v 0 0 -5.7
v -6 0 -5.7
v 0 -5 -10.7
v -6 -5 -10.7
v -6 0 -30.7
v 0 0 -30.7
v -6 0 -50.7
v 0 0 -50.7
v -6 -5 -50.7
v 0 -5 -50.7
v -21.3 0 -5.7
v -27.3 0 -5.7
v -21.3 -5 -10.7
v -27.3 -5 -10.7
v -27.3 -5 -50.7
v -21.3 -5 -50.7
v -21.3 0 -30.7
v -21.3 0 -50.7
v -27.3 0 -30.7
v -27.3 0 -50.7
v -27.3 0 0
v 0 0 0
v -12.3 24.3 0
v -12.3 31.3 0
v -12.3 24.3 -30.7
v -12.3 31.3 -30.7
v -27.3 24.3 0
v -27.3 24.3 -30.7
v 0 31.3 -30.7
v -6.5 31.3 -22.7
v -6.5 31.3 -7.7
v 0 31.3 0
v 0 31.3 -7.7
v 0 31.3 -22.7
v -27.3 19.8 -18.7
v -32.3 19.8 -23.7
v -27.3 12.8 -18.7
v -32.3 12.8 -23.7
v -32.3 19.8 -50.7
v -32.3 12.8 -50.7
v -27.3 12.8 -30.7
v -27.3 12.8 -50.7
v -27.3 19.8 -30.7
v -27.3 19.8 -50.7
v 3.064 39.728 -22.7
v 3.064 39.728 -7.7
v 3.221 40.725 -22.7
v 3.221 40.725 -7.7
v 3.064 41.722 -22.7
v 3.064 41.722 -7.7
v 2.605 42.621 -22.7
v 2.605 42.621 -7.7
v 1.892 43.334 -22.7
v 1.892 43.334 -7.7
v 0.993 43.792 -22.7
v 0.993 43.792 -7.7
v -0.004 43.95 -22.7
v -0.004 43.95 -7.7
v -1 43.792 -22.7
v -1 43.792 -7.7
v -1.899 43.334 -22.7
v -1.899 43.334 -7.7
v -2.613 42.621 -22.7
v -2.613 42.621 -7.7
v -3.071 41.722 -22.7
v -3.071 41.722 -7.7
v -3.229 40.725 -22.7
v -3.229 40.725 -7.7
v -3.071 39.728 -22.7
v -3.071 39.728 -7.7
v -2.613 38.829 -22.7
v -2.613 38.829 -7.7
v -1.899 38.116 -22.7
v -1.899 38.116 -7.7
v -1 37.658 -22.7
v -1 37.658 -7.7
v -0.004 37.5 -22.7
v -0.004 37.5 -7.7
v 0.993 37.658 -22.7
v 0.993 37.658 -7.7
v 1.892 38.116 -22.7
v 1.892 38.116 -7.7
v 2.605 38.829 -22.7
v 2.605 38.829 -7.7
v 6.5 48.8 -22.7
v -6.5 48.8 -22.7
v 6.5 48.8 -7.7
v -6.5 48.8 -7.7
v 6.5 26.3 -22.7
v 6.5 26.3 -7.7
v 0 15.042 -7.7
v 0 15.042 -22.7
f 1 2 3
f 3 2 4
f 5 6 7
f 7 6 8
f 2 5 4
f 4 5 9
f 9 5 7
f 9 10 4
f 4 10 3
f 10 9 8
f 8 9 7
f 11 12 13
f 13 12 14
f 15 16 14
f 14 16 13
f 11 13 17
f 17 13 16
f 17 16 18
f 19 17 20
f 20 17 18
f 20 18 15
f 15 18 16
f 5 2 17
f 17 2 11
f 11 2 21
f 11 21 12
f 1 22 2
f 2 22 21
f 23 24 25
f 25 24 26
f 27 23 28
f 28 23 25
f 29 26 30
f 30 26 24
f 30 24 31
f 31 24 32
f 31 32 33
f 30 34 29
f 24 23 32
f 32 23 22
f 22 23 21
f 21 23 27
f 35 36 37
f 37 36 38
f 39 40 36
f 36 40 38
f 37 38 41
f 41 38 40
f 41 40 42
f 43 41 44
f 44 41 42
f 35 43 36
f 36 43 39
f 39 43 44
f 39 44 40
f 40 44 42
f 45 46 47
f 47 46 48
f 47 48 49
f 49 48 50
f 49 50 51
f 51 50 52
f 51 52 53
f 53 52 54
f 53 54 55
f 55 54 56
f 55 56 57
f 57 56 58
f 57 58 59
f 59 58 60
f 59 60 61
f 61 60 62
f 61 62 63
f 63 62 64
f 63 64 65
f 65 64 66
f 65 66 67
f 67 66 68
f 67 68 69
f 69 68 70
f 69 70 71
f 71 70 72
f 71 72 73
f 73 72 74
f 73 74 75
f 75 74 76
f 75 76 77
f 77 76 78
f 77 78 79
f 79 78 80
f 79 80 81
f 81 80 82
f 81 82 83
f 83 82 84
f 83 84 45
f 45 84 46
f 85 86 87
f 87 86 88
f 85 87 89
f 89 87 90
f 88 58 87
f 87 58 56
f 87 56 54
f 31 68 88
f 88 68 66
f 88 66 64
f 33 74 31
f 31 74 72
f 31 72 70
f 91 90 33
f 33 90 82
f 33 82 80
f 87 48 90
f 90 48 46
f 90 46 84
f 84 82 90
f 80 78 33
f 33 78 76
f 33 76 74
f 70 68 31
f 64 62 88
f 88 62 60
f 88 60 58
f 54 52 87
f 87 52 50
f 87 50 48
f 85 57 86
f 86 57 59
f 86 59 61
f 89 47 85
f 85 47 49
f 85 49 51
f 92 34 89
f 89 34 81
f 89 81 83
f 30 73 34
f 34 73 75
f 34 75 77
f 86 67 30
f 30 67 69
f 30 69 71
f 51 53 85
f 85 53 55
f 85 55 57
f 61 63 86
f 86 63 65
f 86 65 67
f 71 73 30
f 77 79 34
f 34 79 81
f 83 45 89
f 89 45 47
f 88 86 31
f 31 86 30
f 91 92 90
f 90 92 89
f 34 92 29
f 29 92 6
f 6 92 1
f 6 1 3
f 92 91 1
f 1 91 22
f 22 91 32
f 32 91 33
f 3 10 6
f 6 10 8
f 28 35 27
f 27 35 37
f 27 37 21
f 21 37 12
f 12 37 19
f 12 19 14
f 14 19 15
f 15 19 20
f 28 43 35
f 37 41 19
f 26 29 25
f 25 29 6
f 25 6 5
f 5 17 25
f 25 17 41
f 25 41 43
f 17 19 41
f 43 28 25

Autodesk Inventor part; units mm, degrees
ref_plane "YZ Plane" through (0, 0, 0) normal (1, 0, 0) x (0, 1, 0)
ref_plane "XZ Plane" through (0, 0, 0) normal (0, 1, 0) x (-1, 0, 0)
ref_plane "XY Plane" through (0, 0, 0) normal (0, 0, 1) x (1, 0, 0)
sketch "Sketch1" plane through (0, 0, 0) normal (0, 1, 0) x (-1, 0, 0)
  line L0 (0, 0) -> (27.3, 0)
  line L1 (27.3, 0) -> (27.3, -30.7)
  line L2 (27.3, -30.7) -> (0, -30.7)
  line L3 (0, -30.7) -> (0, 0)
  dimension "d0" = 27.3
  dimension "d1" = 30.7
extrude "Extrusion1" add sketch "Sketch1" along normal blind 31.3
sketch "Sketch2" plane through (0, 31.3, 0) normal (0, 1, 0) x (1, 0, 0)
  line L0 (-27.3, 0) -> (0, 0) construction
  line L1 (0, 0) -> (0, 7.7) construction
  line L2 (-6.5, 7.7) -> (6.5, 7.7)
  line L3 (6.5, 7.7) -> (6.5, 22.7)
  line L4 (6.5, 22.7) -> (-6.5, 22.7)
  line L5 (-6.5, 22.7) -> (-6.5, 7.7)
  dimension "d4" = 7.7
  dimension "d5" = 13
  dimension "d6" = 15
extrude "Extrusion2" add sketch "Sketch2" along normal blind 20 and the other way blind 5
draft "FaceDraft1" angle 60 pull direction (1, 0, 0) faces at (2.1667, 26.3, -17.7) fixed edges at (6.5, 26.3, -15.2)
sketch "Sketch3" plane through (-6.5, 31.3, -7.7) normal (0, 0, 1) x (1, 0, 0)
  line L0 (6.5, 0) -> (0, 0) construction
  line L1 (0, 0) -> (0, 6.2) construction
  line L2 (0, 20) -> (0, 0) construction
  line L3 (0, 6.2) -> (12.9928, 6.2) construction
  circle A0 centre (6.4964, 9.425) radius 3.225
  line L4 (0, 20) -> (13, 20) projected
  line L5 (0, 20) -> (13, 20)
  line L6 (13, 20) -> (13, 17.5)
  line L7 (13, 17.5) -> (0, 17.5)
  line L8 (0, 17.5) -> (0, 20)
  point P0 (6.5, -31.3)
  point P1 (6.4964, 6.2)
  dimension "d13" = 6.45
  dimension "d12" = 6.2
  dimension "d14" = 2.5
extrude "Extrusion3" cut sketch "Sketch3" against normal through all
sketch "Sketch4" plane through (0, 0, -30.7) normal (0, 0, -1) x (-1, 0, 0)
  line L0 (27.3, 31.3) -> (0, 31.3) construction
  line L1 (27.3, 31.3) -> (27.3, 19.8) construction
  line L2 (27.3, 0) -> (27.3, 31.3) construction
  line L3 (27.3, 19.8) -> (32.3, 19.8)
  line L4 (32.3, 19.8) -> (32.3, 12.8)
  line L5 (32.3, 12.8) -> (27.3, 12.8)
  line L6 (27.3, 12.8) -> (27.3, 19.8)
  point P0 (0, 0)
  dimension "d17" = 11.5
  dimension "d18" = 5
  dimension "d19" = 7
extrude "Extrusion4" add sketch "Sketch4" along normal blind 20 and the other way blind 12
draft "FaceDraft2" angle 45 pull direction (-1, 0, 0) faces at (-30.6333, 15.1333, -18.7) fixed edges at (-27.3, 16.3, -18.7)
sketch "Sketch5" plane through (0, 0, -30.7) normal (0, 0, -1) x (-1, 0, 0)
  line L0 (27.3, 19.8) -> (27.3, 31.3) projected
  line L1 (27.3, 31.3) -> (12.3, 31.3)
  line L2 (12.3, 31.3) -> (12.3, 24.3)
  line L3 (12.3, 24.3) -> (27.3, 24.3)
  line L4 (27.3, 24.3) -> (27.3, 31.3)
  point P0 (0, 0)
  dimension "d25" = 15
  dimension "d26" = 7
extrude "Extrusion5" cut sketch "Sketch5" against normal through all
sketch "Sketch6" plane through (0, 0, -30.7) normal (0, 0, -1) x (-1, 0, 0)
  point P0 (0, 0)
sketch "Sketch7" plane through (0, 0, -30.7) normal (0, 0, -1) x (-1, 0, 0)
  point P0 (0, 0)
sketch "Sketch8" plane through (0, 0, -30.7) normal (0, 0, -1) x (-1, 0, 0)
  line L0 (27.3, 0) -> (0, 0) projected
  line L1 (27.3, 0) -> (21.3, 0)
  line L2 (21.3, 0) -> (21.3, -5)
  line L3 (21.3, -5) -> (27.3, -5)
  line L4 (27.3, -5) -> (27.3, 0)
  line L5 (0, 0) -> (6, 0)
  line L6 (6, 0) -> (6, -5)
  line L7 (6, -5) -> (0, -5)
  line L8 (0, -5) -> (0, 0)
  dimension "d29" = 6
  dimension "d30" = 5
  dimension "d31" = 6
  dimension "d32" = 5
extrude "Extrusion6" add sketch "Sketch8" along normal blind 20 and the other way blind 25
draft "FaceDraft3" angle 45 pull direction (0, -1, 0) faces at (-23.3, -3.3333, -5.7) (-2, -1.6667, -5.7) fixed edges at (-24.3, 0, -5.7) (-3, 0, -5.7)
properties part number "Y- motor carrier"
